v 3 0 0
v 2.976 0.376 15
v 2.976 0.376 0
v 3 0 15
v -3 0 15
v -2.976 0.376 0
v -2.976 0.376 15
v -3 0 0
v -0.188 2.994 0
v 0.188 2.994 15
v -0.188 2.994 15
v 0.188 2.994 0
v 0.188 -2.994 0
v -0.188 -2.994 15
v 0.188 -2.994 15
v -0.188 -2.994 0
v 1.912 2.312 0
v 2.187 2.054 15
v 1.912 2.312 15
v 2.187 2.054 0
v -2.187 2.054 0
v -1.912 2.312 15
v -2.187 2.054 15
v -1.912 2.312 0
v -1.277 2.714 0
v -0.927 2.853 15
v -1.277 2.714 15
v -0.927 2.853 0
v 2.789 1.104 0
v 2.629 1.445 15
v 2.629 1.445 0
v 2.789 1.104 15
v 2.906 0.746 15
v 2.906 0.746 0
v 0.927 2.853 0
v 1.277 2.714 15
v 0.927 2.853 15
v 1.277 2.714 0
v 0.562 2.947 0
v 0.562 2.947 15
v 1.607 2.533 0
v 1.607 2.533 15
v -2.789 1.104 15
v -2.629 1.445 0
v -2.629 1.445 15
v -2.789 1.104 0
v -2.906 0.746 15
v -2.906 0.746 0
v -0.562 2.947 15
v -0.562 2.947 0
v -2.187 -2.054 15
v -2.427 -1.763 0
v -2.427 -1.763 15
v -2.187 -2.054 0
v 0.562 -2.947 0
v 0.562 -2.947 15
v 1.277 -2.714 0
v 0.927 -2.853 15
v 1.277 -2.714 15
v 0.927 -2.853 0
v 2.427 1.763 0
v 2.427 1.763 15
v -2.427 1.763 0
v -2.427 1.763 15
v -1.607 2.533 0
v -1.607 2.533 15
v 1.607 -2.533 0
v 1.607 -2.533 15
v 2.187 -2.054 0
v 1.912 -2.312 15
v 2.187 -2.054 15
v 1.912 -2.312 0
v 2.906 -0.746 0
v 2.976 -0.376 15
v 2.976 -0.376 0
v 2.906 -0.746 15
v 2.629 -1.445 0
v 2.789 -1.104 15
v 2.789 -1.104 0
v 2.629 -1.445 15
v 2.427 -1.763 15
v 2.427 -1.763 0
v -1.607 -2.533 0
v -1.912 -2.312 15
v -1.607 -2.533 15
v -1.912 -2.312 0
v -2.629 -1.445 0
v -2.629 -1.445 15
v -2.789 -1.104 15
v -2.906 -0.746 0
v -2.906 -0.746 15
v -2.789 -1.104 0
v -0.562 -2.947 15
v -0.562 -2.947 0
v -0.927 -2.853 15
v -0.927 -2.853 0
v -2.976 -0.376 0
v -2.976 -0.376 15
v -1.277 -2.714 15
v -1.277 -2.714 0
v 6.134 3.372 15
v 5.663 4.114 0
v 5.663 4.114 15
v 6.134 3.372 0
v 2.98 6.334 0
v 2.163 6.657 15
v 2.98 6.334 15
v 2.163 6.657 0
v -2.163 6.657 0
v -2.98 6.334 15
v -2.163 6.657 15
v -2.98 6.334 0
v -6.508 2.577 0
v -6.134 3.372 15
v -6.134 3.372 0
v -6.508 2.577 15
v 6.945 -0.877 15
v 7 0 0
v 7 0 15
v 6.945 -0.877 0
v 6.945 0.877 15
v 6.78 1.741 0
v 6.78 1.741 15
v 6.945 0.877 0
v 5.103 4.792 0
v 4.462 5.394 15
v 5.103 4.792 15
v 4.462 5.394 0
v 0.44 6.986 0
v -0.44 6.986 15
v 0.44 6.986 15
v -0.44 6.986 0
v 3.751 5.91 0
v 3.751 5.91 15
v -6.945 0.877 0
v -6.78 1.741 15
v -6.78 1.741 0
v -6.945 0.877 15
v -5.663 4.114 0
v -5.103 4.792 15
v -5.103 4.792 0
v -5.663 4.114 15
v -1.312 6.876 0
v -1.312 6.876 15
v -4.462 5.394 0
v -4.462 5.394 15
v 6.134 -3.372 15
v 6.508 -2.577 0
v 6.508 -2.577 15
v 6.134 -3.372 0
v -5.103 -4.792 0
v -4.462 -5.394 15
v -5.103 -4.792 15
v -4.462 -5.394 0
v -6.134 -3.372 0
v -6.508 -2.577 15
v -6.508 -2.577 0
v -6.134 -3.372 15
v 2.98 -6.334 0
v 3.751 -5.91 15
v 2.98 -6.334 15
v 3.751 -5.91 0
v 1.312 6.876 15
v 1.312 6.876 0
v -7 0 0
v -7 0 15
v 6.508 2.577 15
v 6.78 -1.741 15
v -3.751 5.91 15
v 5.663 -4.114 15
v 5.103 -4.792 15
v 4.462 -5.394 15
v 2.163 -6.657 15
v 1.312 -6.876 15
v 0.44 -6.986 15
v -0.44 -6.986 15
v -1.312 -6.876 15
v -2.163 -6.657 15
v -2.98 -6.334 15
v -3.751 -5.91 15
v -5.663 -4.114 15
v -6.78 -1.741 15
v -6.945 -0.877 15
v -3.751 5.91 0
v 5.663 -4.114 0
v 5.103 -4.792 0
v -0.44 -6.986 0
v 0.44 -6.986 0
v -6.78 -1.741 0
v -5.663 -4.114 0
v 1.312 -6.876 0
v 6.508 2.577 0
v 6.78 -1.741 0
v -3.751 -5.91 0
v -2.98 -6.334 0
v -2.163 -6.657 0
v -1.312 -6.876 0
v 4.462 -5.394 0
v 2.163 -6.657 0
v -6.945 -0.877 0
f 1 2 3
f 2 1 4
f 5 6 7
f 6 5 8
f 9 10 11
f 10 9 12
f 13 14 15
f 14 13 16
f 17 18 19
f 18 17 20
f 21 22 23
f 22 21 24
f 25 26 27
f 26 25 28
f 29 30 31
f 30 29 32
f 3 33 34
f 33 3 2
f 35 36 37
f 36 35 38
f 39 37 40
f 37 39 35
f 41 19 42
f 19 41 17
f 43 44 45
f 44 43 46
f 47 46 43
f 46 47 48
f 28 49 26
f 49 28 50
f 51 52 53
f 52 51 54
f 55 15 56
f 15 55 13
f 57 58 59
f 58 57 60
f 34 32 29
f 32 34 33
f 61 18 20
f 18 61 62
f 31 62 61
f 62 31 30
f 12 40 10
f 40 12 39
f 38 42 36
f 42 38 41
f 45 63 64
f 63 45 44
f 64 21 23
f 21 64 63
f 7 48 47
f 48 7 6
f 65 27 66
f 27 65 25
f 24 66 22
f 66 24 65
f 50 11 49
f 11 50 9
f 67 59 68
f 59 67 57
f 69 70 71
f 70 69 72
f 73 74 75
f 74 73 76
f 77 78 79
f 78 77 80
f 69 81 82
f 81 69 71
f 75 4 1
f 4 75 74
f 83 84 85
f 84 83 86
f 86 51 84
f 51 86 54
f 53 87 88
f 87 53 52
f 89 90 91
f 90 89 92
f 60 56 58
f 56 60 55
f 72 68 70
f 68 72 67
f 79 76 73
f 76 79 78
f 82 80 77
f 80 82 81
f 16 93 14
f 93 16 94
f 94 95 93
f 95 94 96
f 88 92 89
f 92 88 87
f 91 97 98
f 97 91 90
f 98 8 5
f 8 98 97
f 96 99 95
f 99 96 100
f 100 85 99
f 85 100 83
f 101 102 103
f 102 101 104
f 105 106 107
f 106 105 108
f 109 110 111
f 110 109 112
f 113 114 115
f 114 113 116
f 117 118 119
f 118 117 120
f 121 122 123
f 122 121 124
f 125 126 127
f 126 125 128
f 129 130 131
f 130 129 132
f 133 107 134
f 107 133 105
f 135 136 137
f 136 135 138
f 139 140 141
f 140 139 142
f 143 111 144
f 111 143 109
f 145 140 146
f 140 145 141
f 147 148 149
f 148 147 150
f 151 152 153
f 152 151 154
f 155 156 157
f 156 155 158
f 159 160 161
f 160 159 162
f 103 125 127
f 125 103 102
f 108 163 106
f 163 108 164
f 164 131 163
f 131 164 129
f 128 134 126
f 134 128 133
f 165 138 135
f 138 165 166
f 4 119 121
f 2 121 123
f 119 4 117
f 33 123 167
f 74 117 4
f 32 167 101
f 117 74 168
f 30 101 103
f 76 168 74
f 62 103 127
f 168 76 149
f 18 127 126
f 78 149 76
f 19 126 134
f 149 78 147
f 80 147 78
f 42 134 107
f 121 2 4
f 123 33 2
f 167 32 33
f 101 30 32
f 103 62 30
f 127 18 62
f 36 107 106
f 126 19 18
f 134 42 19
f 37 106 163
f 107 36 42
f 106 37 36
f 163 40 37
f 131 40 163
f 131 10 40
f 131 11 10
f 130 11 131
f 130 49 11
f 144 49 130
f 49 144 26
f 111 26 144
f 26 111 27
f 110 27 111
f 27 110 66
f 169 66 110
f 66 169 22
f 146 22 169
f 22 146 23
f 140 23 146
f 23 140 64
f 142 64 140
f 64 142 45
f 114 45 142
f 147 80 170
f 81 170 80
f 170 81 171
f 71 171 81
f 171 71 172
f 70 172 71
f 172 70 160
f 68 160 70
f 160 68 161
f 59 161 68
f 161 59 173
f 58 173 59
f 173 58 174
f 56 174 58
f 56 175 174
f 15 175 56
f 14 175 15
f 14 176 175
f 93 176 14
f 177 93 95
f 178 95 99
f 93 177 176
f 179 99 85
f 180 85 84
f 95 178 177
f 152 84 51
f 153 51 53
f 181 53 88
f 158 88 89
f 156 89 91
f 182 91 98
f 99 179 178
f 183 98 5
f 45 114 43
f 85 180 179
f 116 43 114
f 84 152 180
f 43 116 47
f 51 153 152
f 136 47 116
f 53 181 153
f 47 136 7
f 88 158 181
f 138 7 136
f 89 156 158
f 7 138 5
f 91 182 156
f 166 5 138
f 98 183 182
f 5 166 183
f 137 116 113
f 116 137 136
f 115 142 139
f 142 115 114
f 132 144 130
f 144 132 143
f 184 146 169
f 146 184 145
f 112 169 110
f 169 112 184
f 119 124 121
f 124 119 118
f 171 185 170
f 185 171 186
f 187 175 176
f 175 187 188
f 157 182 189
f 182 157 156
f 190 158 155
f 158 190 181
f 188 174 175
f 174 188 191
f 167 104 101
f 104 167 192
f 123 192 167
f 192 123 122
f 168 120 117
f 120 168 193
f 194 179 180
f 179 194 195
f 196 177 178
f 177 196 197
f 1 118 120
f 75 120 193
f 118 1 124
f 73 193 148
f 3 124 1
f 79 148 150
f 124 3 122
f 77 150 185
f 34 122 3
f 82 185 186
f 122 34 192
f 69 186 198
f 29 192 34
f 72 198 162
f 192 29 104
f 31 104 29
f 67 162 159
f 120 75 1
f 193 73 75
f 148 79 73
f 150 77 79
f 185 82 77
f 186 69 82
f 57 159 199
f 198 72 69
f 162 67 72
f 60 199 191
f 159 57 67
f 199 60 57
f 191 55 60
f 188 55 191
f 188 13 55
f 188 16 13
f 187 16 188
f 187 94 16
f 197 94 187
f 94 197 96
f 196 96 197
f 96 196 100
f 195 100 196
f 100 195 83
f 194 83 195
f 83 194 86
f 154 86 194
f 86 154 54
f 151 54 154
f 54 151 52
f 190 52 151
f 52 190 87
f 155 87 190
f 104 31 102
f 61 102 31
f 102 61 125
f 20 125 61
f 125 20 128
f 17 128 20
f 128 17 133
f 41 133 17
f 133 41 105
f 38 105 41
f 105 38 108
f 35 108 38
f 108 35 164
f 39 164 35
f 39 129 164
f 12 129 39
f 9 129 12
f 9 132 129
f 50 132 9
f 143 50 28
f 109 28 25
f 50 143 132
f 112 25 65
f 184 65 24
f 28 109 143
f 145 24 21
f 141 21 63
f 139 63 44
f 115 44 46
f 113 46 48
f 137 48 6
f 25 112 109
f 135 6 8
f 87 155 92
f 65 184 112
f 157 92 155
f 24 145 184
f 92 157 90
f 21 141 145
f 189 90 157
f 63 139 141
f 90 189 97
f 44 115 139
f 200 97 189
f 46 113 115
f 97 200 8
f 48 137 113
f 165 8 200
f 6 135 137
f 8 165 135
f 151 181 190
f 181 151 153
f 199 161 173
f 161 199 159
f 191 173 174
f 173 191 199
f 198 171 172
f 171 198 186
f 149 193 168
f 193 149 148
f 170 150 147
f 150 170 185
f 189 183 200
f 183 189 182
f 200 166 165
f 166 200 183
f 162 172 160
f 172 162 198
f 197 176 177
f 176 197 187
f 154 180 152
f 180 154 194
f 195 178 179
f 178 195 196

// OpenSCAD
$fn = 50;


difference() {
	union() {
		cylinder(h = 15, r = 7.0000000000);
	}
	union() {
		cylinder(h = 15, r = 3.0000000000);
		cylinder(h = 15, r = 3.0000000000);
		cylinder(h = 15, r = 1.5000000000);
		cylinder(h = 15, r = 1.5000000000);
		cylinder(h = 15, r = 1.5000000000);
		cylinder(h = 15, r = 1.5000000000);
		cylinder(h = 15, r = 1.5000000000);
		cylinder(h = 15, r = 1.5000000000);
	}
}
